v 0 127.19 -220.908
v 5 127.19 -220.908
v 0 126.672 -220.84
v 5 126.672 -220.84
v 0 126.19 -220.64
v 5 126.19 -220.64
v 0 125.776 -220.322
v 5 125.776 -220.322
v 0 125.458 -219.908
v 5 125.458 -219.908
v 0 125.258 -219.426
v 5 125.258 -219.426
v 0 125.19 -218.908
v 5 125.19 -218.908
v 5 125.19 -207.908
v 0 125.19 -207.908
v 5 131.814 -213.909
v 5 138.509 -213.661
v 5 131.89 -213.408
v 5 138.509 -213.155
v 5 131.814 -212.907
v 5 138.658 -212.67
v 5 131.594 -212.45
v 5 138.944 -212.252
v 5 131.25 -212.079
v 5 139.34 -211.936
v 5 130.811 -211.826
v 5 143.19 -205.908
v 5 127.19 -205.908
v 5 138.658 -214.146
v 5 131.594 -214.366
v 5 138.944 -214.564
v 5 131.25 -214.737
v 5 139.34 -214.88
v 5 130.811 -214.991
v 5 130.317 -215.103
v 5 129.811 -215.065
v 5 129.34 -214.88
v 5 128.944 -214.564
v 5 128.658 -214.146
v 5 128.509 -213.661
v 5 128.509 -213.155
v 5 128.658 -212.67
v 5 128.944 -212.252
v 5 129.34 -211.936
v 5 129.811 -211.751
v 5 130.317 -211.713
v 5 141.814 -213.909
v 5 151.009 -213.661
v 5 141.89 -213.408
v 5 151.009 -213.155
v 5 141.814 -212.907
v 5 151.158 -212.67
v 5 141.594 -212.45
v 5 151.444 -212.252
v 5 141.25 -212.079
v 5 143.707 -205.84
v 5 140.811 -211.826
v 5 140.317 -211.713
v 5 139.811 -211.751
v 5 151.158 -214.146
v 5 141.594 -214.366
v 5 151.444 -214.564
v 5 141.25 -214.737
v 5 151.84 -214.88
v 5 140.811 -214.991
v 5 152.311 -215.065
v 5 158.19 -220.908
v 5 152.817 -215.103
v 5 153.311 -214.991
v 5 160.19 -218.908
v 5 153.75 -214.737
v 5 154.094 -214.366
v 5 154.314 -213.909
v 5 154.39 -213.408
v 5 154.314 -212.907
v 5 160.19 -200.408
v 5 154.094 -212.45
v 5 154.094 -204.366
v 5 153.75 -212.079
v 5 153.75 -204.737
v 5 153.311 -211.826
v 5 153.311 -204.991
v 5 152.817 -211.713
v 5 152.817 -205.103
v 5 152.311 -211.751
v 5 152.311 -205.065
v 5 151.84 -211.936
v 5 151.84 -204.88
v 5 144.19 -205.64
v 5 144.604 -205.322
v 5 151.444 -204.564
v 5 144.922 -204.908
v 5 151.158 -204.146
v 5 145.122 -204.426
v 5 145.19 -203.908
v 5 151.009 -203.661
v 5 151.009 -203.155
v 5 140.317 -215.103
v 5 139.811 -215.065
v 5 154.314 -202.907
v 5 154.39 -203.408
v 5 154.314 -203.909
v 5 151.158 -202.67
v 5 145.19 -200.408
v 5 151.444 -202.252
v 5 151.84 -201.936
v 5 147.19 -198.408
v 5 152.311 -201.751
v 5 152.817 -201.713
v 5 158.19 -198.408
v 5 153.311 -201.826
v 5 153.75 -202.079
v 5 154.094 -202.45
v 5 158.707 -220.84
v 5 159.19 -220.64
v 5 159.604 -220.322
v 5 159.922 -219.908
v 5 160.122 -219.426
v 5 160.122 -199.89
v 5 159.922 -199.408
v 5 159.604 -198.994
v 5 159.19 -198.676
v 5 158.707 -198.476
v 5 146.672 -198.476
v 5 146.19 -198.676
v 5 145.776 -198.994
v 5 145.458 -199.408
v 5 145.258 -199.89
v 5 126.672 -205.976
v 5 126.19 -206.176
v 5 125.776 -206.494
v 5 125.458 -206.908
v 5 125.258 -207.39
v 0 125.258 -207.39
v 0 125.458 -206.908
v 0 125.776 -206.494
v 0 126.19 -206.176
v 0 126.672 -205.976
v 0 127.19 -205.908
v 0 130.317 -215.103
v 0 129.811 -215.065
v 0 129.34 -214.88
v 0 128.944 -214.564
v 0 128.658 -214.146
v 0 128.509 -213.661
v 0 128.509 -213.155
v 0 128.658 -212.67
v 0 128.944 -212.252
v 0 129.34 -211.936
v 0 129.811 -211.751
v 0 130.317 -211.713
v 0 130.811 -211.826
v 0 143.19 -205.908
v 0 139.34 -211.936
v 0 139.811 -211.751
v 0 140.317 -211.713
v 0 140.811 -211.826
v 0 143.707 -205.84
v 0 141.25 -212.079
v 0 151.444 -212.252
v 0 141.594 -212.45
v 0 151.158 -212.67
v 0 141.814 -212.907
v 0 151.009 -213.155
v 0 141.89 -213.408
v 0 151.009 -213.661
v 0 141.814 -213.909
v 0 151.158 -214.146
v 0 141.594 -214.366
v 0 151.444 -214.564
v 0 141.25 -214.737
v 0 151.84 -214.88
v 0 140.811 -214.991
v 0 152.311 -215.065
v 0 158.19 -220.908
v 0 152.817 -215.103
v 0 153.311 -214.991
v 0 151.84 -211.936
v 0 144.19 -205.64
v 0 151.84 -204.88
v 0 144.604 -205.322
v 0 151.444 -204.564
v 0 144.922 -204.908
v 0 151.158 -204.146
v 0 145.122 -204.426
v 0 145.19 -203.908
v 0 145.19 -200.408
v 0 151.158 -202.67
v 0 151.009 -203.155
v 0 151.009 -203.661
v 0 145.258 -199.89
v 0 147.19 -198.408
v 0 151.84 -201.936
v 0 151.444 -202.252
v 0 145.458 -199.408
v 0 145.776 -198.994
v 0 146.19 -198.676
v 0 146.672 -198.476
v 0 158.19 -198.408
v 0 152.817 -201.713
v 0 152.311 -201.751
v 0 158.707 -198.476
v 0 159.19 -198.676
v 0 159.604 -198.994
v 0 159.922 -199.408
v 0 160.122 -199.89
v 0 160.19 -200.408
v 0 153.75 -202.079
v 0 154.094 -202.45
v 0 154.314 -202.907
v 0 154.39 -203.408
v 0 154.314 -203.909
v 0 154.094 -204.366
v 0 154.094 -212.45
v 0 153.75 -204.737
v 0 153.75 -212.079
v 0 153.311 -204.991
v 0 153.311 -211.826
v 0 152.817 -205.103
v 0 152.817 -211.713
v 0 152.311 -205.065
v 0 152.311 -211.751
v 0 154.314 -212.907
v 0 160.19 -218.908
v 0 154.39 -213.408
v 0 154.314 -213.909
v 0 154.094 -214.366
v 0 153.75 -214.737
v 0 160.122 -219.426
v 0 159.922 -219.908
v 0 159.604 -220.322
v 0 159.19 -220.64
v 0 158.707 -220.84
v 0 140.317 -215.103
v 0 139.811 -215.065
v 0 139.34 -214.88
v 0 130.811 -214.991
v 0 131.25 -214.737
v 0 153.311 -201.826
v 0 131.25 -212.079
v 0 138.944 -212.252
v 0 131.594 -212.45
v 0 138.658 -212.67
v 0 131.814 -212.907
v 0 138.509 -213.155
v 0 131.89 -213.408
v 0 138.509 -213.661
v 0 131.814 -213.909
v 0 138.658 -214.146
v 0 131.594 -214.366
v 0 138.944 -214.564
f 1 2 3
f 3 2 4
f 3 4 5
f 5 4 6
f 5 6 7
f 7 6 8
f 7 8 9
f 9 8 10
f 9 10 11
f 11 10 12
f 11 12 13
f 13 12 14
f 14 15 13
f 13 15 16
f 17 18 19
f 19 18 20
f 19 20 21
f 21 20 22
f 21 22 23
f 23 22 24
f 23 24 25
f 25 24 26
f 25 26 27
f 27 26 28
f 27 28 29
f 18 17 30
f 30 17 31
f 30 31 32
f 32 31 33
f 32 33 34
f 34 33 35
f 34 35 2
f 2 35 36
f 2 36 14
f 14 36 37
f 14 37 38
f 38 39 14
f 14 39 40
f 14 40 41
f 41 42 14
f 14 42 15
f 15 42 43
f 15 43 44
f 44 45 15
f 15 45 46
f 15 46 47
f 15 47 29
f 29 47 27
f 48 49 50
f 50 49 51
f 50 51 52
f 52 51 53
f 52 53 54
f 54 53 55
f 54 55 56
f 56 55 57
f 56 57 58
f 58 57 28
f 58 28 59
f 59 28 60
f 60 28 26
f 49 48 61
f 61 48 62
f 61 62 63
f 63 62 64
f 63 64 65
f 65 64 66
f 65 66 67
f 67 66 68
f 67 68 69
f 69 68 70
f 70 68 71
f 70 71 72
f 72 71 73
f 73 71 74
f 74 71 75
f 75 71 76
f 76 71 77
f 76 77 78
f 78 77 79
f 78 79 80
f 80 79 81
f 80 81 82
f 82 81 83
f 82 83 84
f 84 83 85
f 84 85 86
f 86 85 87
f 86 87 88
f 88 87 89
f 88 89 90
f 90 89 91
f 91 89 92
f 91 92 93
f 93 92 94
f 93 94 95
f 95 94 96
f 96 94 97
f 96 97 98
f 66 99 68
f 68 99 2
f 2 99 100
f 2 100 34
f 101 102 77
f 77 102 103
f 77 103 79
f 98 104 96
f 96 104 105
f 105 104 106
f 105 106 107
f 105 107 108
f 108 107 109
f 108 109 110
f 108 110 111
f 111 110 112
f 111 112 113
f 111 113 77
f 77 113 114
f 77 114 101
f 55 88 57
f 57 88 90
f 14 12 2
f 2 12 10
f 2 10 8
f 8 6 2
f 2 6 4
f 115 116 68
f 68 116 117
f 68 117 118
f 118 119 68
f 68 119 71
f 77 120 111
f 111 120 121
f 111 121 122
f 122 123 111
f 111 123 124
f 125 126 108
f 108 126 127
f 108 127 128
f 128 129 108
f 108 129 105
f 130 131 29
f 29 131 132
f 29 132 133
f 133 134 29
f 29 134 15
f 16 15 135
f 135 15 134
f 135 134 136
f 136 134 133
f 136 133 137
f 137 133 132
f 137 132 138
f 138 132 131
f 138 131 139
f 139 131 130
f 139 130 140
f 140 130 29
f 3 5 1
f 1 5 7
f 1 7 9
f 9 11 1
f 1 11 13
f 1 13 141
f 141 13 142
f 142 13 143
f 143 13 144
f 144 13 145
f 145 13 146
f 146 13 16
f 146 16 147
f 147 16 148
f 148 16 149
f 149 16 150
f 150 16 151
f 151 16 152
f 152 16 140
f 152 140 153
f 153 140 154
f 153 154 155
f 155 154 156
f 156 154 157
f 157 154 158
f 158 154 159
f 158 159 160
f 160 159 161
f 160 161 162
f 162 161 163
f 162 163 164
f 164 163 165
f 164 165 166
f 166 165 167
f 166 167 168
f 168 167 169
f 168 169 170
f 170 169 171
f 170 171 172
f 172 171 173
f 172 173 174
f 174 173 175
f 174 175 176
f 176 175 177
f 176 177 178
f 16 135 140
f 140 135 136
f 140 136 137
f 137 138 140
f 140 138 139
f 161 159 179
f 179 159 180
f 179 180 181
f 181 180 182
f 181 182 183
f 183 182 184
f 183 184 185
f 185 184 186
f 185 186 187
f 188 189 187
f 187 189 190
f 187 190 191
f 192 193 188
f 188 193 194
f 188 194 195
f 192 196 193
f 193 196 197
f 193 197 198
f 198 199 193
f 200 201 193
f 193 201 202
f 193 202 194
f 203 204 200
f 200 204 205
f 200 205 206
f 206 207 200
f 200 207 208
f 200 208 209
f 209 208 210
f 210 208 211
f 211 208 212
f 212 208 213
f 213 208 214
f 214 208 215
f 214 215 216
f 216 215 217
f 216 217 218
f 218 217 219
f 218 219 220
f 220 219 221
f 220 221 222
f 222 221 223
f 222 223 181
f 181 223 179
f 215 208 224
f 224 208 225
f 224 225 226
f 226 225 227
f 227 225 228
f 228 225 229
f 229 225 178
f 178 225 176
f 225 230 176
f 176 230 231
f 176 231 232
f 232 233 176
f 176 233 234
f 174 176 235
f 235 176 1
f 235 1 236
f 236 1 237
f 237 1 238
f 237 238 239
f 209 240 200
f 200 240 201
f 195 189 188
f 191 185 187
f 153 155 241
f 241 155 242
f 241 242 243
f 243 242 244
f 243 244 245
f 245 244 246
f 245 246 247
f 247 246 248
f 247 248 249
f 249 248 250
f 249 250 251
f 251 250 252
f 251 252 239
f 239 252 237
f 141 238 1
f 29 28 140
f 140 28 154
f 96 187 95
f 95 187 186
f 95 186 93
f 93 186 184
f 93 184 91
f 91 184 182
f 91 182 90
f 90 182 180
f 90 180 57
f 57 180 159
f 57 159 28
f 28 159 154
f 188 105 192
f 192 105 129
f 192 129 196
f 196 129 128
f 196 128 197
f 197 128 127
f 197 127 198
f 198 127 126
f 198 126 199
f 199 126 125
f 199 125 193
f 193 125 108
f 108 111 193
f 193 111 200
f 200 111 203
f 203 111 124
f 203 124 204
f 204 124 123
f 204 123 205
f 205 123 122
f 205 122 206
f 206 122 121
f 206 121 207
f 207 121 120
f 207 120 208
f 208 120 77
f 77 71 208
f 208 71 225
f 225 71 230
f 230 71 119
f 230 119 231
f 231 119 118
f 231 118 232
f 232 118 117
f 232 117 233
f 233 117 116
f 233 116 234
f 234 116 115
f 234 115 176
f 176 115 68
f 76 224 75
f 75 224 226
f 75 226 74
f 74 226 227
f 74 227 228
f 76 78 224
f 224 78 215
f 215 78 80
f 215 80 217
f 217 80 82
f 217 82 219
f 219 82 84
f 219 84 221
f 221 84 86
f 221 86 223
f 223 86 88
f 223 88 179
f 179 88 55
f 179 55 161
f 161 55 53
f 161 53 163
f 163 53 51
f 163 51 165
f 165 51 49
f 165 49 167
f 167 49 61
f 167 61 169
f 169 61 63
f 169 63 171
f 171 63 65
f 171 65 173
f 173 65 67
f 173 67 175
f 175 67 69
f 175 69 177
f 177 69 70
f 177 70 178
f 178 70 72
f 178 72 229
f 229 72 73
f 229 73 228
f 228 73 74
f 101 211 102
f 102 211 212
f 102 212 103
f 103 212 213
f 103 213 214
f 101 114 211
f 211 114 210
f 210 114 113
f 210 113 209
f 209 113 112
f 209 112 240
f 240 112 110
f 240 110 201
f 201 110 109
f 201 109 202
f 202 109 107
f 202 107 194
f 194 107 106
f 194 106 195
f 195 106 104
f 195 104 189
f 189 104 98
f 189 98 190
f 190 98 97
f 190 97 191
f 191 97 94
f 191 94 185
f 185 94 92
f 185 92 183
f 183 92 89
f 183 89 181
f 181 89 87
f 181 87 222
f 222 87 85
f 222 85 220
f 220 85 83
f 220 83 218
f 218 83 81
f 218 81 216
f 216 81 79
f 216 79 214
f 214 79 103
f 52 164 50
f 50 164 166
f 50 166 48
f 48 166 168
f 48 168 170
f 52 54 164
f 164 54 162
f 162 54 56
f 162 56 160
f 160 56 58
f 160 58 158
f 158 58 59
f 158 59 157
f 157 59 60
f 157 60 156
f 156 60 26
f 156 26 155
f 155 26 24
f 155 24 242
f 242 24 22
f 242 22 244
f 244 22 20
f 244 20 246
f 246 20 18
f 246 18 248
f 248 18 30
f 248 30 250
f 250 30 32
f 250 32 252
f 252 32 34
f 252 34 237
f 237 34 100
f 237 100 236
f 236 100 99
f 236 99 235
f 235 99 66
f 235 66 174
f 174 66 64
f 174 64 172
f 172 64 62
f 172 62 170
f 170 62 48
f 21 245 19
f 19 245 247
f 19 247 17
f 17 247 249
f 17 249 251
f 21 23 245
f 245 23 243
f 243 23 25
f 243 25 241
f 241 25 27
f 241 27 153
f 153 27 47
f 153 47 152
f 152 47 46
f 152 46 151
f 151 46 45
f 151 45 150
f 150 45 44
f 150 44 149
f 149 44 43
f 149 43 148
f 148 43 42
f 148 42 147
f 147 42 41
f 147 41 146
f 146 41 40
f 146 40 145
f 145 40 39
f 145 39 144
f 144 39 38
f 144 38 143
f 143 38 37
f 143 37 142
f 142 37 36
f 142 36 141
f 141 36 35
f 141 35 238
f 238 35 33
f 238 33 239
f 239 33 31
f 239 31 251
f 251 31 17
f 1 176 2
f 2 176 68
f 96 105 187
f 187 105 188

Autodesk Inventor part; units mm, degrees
ref_plane "YZ Plane" through (0, 0, 0) normal (1, 0, 0) x (0, 1, 0)
ref_plane "XZ Plane" through (0, 0, 0) normal (0, 1, 0) x (-1, 0, 0)
ref_plane "XY Plane" through (0, 0, 0) normal (0, 0, 1) x (1, 0, 0)
sketch "スケッチ1" plane through (0, 0, 0) normal (1, 0, 0) x (0, 1, 0)
  line L0 (-144.8102, -220.9081) -> (-144.8102, 234.0919)
  line L1 (-144.8102, -220.9081) -> (145.1898, -220.9081)
  line L2 (145.1898, -220.9081) -> (145.1898, -205.9081)
  line L3 (145.1898, -205.9081) -> (-144.8102, -205.9081)
  line L4 (-144.8102, -205.9081) -> (-144.8102, -220.9081)
  line L5 (145.1898, 234.0919) -> (145.1898, -220.9081)
  line L6 (145.1898, -220.9081) -> (160.1898, -220.9081)
  line L7 (160.1898, 234.0919) -> (160.1898, -220.9081)
  line L8 (0.1898, -205.9081) -> (0.1898, -220.9081)
  line L9 (125.1898, -205.9081) -> (125.1898, -220.9081)
  line L10 (145.1898, -198.4081) -> (160.1898, -198.4081)
  circle A0 centre (130.1898, -213.4081) radius 1.7
  circle A1 centre (140.1898, -213.4081) radius 1.7
  circle A2 centre (152.6898, -213.4081) radius 1.7
  circle A3 centre (152.6898, -203.4081) radius 1.7
  point P0 (0, 0)
  point P1 (-54.8102, -185.9081)
  point P2 (-152.3102, -203.4081)
  point P3 (-152.3102, -213.4081)
  point P4 (-139.8102, -213.4081)
  point P5 (-129.8102, -213.4081)
  dimension "d0" = 15
  dimension "d1" = 0
  dimension "d2" = 10
  dimension "d3" = 7.5
  dimension "d4" = 10
  dimension "d5" = 5
  dimension "d6" = 7.5
  dimension "d7" = 7.5
  dimension "d8" = 7.5
  dimension "d9" = 7.5
  dimension "d10" = 5
  dimension "d11" = 5
  dimension "d12" = 3.4
  dimension "d13" = 3.4
  dimension "d14" = 3.4
  dimension "d15" = 3.4
extrude "押し出し1" add sketch "スケッチ1" along normal blind 5 contours L9 L3 L2 L1 | L2 L5 L10 L7 L6
fillet "フィレット1" radius 2 6 edges at (2.5, 160.1898, -220.9081) (2.5, 160.1898, -198.4081) (2.5, 145.1898, -198.4081) (2.5, 145.1898, -205.9081) (2.5, 125.1898, -205.9081) (2.5, 125.1898, -220.9081)
equation "\"d6\" = d3"
equation "\"d9\" = d8"
properties part number "ball_loading_v1_Plate_ASP_F_3" material "ABS プラスチック"
